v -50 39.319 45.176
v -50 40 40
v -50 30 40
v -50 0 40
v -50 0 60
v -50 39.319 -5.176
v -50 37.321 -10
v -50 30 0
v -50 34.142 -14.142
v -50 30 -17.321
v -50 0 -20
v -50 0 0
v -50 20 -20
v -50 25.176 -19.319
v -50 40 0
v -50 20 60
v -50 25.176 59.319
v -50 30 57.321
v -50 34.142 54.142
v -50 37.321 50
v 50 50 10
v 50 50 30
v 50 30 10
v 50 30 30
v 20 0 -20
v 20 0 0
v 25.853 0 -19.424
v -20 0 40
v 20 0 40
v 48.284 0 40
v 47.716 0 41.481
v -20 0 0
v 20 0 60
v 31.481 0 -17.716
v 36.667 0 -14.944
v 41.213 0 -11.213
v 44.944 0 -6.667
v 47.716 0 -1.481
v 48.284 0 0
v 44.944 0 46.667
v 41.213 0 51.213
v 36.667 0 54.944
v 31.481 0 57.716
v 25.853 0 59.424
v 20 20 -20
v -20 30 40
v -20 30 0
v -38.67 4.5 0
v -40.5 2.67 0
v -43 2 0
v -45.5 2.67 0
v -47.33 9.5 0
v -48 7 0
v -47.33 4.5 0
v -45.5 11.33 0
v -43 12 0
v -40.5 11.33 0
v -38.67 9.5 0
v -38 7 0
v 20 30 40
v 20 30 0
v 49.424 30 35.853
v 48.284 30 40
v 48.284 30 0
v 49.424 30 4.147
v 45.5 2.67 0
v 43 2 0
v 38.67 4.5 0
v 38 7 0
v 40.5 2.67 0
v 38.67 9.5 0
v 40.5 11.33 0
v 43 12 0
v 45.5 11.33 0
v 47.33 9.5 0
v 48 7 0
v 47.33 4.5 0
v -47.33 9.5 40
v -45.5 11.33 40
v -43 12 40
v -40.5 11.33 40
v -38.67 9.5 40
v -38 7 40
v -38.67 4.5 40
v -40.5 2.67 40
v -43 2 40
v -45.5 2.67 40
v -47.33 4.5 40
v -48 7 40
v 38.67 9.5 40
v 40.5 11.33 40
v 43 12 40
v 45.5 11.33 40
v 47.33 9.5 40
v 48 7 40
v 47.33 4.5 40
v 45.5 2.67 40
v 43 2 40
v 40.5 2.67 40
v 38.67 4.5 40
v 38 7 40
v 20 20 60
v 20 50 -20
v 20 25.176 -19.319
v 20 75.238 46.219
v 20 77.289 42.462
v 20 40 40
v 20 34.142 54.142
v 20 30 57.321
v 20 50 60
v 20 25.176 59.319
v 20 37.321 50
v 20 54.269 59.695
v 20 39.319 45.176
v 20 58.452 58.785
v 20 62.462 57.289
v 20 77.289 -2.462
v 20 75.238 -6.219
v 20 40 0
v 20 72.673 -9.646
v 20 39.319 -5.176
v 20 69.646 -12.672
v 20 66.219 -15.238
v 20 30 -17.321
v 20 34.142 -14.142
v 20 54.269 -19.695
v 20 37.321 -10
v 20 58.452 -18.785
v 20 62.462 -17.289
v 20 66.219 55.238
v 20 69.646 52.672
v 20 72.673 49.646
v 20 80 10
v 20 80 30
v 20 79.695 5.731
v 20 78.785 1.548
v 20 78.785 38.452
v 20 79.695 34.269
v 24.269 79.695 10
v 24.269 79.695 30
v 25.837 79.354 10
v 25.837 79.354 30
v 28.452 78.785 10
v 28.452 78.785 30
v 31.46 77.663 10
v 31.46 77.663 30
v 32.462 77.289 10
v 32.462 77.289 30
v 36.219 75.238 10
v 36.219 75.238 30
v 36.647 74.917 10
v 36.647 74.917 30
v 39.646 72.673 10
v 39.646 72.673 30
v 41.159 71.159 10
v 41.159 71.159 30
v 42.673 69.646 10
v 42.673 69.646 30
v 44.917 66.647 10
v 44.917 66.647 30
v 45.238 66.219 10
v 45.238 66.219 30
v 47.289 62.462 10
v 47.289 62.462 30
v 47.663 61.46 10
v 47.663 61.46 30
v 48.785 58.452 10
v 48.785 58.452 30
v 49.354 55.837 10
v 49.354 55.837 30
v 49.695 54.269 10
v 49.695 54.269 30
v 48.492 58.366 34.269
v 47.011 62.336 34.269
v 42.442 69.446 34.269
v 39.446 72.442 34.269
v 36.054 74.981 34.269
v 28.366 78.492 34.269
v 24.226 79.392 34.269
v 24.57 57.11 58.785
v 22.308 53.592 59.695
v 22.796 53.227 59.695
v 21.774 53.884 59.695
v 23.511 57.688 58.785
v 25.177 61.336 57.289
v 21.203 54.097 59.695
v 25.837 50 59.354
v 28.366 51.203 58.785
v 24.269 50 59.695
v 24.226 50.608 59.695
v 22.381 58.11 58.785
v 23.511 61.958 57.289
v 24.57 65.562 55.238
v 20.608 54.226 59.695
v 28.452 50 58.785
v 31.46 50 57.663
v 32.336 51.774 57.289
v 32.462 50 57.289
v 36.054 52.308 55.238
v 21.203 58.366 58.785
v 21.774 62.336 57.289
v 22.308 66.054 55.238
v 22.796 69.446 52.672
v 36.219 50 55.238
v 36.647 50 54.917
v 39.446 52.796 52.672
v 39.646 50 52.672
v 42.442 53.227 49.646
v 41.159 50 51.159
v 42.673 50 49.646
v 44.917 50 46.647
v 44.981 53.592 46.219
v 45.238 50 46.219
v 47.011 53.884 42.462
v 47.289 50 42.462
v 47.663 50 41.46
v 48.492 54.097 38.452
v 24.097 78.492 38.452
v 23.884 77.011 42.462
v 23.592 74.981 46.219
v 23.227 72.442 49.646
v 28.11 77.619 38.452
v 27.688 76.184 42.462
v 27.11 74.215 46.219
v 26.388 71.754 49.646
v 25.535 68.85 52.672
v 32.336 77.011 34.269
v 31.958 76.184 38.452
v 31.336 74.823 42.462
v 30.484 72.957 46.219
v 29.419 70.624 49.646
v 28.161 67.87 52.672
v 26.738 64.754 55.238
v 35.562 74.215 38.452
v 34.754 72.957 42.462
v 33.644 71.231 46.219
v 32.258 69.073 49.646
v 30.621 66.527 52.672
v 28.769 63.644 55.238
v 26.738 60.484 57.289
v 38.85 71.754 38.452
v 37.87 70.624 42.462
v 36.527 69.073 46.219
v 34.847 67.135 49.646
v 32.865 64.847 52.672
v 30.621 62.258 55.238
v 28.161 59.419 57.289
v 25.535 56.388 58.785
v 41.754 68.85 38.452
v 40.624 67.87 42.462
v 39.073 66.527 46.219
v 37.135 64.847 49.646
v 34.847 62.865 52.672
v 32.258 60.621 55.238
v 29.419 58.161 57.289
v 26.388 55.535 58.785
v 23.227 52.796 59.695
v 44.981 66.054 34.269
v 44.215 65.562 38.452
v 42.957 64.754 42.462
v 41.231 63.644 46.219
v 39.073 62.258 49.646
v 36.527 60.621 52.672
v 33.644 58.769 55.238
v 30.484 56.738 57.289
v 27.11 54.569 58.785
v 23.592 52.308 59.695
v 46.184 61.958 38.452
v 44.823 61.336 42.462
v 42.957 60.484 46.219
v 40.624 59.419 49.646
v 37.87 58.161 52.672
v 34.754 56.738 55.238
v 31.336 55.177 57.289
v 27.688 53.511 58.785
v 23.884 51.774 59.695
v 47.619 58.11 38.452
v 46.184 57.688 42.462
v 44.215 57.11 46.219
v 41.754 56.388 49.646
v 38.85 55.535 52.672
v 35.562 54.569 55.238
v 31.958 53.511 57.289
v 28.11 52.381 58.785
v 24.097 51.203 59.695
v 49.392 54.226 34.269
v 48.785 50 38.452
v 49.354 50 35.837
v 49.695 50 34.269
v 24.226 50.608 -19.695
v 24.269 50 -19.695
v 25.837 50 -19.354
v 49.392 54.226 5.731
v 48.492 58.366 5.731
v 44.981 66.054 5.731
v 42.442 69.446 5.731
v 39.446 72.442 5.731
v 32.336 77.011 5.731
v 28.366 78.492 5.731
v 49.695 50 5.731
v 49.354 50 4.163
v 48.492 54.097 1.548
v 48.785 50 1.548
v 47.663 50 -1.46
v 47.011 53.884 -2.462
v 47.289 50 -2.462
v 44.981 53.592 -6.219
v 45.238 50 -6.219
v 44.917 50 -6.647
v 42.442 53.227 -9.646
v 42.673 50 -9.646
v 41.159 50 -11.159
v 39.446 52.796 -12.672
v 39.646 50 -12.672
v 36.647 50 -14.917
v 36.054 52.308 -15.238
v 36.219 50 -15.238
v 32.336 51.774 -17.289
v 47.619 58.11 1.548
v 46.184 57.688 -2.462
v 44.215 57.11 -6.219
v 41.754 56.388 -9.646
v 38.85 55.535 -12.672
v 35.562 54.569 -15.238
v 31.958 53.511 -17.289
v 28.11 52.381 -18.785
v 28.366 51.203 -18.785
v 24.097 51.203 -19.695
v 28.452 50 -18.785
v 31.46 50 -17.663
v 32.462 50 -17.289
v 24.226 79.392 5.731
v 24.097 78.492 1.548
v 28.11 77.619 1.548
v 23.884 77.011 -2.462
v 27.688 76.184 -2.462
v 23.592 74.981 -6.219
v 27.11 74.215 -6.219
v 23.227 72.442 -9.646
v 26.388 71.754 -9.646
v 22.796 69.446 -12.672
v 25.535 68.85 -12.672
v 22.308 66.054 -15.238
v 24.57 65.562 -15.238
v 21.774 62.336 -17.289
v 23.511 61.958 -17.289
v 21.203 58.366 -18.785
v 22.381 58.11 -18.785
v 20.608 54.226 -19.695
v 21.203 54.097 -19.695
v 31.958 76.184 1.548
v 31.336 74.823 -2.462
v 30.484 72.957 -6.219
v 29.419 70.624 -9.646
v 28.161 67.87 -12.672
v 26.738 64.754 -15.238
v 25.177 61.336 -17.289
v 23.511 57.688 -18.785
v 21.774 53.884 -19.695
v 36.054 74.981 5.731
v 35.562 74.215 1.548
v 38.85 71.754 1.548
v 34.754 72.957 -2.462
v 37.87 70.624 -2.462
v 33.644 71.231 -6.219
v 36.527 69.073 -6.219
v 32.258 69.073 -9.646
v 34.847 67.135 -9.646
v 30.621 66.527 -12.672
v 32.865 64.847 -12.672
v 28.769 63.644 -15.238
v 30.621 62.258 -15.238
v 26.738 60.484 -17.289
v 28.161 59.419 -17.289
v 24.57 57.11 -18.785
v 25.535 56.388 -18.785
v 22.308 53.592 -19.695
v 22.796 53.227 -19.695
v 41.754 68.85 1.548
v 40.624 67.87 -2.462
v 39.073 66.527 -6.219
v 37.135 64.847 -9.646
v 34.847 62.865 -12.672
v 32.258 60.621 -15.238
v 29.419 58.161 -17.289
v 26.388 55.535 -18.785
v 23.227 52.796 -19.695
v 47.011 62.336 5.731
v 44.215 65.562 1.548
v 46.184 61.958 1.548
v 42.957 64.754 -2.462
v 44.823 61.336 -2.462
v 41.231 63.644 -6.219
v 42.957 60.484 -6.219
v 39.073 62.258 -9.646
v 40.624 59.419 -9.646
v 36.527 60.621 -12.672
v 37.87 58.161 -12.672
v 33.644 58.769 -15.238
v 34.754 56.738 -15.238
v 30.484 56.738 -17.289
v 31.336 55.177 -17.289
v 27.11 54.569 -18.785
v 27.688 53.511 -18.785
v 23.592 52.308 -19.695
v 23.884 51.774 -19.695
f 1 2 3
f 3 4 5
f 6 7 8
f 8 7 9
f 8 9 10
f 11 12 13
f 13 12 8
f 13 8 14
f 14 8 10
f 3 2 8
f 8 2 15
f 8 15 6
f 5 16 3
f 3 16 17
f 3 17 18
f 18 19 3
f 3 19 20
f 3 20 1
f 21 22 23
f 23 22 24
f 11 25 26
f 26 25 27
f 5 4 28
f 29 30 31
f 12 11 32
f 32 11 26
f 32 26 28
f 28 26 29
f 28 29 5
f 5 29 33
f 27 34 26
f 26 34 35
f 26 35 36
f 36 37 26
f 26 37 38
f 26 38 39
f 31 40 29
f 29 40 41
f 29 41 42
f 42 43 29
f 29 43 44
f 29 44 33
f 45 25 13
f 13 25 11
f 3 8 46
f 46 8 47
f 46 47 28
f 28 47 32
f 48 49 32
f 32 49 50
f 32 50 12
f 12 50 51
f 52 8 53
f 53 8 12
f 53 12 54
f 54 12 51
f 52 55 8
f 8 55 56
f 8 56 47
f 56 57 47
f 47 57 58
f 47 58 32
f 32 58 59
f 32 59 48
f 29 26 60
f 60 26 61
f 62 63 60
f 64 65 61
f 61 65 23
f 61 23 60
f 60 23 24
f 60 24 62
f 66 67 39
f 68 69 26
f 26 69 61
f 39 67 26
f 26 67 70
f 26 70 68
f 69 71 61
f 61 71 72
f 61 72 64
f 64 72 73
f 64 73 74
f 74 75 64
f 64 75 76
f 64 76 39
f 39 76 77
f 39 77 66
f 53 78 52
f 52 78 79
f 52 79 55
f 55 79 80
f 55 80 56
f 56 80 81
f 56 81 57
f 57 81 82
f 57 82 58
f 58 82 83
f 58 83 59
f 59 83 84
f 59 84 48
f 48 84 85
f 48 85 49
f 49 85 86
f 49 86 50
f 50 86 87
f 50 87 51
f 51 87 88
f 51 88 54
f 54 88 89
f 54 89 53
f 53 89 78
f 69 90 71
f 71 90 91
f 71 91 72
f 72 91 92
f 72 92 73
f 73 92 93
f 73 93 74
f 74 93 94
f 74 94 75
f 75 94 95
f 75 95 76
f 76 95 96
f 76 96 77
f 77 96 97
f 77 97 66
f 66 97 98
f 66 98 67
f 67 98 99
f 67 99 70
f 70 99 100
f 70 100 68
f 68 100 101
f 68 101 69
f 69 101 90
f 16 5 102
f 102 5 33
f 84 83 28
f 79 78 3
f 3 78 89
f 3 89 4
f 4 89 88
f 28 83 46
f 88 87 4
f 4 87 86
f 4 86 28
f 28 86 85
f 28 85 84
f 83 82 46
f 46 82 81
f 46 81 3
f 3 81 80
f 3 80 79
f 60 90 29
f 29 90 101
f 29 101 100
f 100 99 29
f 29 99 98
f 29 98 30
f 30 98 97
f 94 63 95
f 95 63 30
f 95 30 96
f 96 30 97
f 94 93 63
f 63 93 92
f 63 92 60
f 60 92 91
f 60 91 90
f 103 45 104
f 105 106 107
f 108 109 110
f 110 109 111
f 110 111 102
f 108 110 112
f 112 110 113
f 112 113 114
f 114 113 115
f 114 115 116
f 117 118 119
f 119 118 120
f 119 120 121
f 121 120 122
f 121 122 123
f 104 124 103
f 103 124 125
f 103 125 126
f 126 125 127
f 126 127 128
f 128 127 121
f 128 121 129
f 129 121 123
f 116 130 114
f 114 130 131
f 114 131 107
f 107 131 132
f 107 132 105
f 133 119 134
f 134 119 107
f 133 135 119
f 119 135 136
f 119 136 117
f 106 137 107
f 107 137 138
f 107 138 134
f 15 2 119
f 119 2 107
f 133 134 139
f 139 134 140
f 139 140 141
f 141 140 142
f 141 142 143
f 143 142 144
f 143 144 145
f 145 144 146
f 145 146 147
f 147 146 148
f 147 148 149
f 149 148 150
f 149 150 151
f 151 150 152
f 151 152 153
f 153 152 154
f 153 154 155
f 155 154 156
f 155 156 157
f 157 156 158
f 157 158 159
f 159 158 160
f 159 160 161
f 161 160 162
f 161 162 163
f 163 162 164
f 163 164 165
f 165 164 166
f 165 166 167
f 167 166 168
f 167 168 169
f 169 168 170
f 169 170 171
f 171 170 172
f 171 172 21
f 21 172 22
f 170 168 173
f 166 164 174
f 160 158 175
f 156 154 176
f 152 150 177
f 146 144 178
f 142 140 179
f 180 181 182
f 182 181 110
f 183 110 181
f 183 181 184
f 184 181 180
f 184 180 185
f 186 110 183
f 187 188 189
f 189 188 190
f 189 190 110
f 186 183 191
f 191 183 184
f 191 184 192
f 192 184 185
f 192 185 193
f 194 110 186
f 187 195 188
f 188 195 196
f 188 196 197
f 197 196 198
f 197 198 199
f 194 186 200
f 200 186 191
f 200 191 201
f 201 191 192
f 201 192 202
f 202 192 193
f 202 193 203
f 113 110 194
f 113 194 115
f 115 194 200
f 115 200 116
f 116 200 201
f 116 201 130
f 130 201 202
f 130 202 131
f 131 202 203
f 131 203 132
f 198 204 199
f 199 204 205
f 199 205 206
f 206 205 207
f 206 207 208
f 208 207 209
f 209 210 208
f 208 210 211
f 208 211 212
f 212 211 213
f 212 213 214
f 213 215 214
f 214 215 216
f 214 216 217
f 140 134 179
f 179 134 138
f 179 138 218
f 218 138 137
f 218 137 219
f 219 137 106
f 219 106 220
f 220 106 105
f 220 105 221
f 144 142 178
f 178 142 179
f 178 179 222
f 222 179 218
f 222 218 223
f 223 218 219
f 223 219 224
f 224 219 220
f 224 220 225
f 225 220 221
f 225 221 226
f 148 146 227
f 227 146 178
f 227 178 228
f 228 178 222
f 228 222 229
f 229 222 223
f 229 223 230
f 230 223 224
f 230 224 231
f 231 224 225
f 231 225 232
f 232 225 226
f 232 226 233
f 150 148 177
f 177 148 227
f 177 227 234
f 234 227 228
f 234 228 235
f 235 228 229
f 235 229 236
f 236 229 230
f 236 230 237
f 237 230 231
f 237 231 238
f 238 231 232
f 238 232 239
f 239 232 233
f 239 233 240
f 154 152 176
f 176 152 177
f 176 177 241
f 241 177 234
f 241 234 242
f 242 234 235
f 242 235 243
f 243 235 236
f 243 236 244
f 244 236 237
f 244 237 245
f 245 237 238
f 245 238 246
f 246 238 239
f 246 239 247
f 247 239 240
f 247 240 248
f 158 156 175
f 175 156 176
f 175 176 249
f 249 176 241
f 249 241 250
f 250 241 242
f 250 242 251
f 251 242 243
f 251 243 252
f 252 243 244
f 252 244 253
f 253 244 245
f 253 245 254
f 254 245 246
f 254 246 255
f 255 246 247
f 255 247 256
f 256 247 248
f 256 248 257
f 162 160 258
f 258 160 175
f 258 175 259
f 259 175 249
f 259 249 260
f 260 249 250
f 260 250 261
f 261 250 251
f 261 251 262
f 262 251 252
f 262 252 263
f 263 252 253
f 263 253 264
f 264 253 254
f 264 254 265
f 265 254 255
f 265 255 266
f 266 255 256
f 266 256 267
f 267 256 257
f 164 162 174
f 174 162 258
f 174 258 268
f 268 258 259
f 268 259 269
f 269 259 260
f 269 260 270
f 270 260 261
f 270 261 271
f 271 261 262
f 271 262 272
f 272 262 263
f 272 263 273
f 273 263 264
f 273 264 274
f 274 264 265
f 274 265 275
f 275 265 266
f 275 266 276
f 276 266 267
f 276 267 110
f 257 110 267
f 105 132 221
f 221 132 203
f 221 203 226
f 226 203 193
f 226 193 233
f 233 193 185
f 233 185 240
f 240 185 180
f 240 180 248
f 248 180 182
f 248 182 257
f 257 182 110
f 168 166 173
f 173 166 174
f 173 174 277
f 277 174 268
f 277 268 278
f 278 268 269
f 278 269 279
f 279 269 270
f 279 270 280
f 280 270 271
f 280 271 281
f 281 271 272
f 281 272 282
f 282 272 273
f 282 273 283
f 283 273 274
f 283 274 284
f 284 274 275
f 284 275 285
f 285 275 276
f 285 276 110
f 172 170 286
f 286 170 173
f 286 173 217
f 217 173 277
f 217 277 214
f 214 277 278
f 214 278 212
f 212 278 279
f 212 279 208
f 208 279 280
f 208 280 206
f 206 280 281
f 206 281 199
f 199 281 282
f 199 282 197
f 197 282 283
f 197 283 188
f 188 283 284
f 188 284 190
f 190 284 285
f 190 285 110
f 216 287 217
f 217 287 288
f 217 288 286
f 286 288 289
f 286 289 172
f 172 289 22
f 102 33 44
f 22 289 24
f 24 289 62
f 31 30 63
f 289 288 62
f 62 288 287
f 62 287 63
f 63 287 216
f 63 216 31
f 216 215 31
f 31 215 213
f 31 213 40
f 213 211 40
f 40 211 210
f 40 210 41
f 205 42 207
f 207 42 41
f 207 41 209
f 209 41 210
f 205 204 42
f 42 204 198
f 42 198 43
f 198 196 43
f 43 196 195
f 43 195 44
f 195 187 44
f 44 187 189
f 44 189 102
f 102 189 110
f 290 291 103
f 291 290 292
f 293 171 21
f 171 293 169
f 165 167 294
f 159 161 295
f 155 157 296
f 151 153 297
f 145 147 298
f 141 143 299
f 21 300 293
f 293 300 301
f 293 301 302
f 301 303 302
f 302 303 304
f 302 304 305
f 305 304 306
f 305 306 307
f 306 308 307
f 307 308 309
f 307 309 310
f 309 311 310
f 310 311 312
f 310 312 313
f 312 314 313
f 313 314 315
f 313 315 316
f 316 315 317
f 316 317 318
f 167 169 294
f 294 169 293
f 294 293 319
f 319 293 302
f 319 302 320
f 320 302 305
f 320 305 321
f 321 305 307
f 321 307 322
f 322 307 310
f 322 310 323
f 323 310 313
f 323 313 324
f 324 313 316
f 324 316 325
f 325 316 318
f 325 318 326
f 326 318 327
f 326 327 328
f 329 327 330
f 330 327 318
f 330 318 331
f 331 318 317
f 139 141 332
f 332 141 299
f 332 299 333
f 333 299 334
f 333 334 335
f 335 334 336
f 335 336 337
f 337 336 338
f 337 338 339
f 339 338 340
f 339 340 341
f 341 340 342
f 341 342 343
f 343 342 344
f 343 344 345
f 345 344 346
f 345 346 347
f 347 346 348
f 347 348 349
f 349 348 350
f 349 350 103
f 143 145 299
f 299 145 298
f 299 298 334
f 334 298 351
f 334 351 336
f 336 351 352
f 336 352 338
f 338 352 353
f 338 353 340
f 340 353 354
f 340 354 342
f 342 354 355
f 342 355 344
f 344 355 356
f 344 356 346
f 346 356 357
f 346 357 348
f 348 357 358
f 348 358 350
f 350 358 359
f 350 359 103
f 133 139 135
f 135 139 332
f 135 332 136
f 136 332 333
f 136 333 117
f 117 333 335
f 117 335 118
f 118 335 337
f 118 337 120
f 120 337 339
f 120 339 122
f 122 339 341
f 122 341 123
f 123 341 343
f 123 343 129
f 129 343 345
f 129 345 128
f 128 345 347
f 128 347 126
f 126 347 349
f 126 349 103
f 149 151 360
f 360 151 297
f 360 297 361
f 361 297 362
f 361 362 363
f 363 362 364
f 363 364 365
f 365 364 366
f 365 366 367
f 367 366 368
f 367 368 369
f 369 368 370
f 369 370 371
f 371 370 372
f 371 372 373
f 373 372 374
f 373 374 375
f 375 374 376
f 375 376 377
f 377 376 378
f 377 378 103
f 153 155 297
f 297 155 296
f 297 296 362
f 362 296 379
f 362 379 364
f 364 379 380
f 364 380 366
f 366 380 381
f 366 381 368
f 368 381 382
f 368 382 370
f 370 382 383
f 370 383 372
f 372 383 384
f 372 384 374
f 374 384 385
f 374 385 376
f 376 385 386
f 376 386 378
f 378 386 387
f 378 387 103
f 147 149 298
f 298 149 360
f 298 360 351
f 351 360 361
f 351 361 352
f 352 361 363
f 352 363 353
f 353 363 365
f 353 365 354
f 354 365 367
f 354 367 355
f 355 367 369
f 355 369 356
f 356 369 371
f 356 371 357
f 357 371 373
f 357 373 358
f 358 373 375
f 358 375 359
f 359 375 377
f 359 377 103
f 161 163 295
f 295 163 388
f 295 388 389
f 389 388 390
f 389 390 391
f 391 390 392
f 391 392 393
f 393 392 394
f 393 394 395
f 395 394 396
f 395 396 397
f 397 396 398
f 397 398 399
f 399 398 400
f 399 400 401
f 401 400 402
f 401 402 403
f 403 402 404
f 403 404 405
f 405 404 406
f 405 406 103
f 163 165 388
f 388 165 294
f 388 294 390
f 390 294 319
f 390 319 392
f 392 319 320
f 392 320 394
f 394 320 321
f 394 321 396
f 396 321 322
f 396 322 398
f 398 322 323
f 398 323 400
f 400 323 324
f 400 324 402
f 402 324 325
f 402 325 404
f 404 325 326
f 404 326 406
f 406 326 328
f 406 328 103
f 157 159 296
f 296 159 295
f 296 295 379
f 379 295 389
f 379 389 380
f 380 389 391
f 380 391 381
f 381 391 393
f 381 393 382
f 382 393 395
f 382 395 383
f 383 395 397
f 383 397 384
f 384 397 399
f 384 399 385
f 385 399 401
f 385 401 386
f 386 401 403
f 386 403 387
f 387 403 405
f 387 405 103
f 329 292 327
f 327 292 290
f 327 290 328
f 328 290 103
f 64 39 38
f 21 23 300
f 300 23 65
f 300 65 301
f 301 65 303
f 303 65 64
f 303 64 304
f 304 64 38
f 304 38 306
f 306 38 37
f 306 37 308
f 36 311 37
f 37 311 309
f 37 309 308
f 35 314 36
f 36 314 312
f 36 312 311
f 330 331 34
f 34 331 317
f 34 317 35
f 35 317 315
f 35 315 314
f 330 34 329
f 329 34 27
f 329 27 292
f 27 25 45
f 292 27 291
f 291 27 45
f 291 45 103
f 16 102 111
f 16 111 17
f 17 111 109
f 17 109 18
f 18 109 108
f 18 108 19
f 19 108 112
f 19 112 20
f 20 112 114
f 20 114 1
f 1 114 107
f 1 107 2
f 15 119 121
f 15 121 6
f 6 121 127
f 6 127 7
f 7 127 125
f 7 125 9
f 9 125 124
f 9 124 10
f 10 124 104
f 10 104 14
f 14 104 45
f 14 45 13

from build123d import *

# Parameters (mm, degrees)
SKETCH_1_W          = 100
SKETCH_1_H          = 40
EXTRUDE_1_DEPTH     = 80
SKETCH_3_W          = 30
SKETCH_3_H          = 30
CUT_EXTRUDE_2_DEPTH = 20
SKETCH_6_R          = 5
EXTRUDE_2_DEPTH     = 20
SKETCH_7_W          = 70
SKETCH_7_H          = 80
CUT_EXTRUDE_3_DEPTH = 40
FILLET_1_R          = 30
FILLET_2_R          = 30
FILLET_3_R          = 30
FILLET_4_R          = 20
FILLET_5_R          = 20


with BuildPart() as part:
    # 草圖1 → 填料-伸長1 (new body)
    with BuildSketch(Plane(origin=(0, 0, 0), x_dir=(1, 0, 0), z_dir=(0, 1, 0))):
        Rectangle(SKETCH_1_W, SKETCH_1_H)
    extrude_1 = extrude(amount=EXTRUDE_1_DEPTH)

    # 草圖3 → 除料-伸長2 (cut)
    with BuildSketch(Plane.XY.offset(20)):
        with Locations((-35, 15)):
            Rectangle(SKETCH_3_W, SKETCH_3_H)
        with Locations((35, 15)):
            Rectangle(SKETCH_3_W, SKETCH_3_H)
    cut_extrude_2 = extrude(amount=-CUT_EXTRUDE_2_DEPTH, mode=Mode.SUBTRACT)

    # 草圖6 → 填料-伸長2 (add)
    with BuildSketch(Plane.XY):
        with Locations((-43, 7)):
            Circle(SKETCH_6_R)
        with Locations((43, 7)):
            Circle(SKETCH_6_R)
    extrude_2 = extrude(amount=EXTRUDE_2_DEPTH)

    # 鏡射3: 填料-伸長1, 除料-伸長2, 填料-伸長2 across plane
    add(extrude_1.mirror(Plane(origin=(-50, 80, 20), x_dir=(1, 0, 0), z_dir=(0, 0, -1))))
    add(cut_extrude_2.mirror(Plane(origin=(-50, 80, 20), x_dir=(1, 0, 0), z_dir=(0, 0, -1))), mode=Mode.SUBTRACT)
    add(extrude_2.mirror(Plane(origin=(-50, 80, 20), x_dir=(1, 0, 0), z_dir=(0, 0, -1))))

    # 草圖7 → 除料-伸長3 (cut)
    with BuildSketch(Plane(origin=(0, 80, 0), x_dir=(1, 0, 0), z_dir=(0, 1, 0))):
        with Locations((-15, -20)):
            Rectangle(SKETCH_7_W, SKETCH_7_H)
    extrude(amount=-CUT_EXTRUDE_3_DEPTH, mode=Mode.SUBTRACT)

    # 圓角1
    fillet_1_edges = [part.edges().sort_by_distance(p)[0] for p in [
        (50, 80, 20),
    ]]
    fillet(fillet_1_edges, radius=FILLET_1_R - 0.0001)  # a hair under: the kernel refuses the full size

    # 圓角2
    fillet_2_edges = [part.edges().sort_by_distance(p)[0] for p in [
        (50, 25.00005, 60),
        (41.213232725, 71.213232725, 60),
    ]]
    fillet(fillet_2_edges, radius=FILLET_2_R - 0.0001)  # a hair under: the kernel refuses the full size

    # 圓角3
    fillet_3_edges = [part.edges().sort_by_distance(p)[0] for p in [
        (50, 25.00005, -20),
        (41.213232725, 71.213232725, -20),
    ]]
    fillet(fillet_3_edges, radius=FILLET_3_R - 0.0001)  # a hair under: the kernel refuses the full size

    # 圓角4
    fillet_4_edges = [part.edges().sort_by_distance(p)[0] for p in [
        (-15, 40, 60),
    ]]
    fillet(fillet_4_edges, radius=FILLET_4_R)

    # 圓角5
    fillet_5_edges = [part.edges().sort_by_distance(p)[0] for p in [
        (-15, 40, -20),
    ]]
    fillet(fillet_5_edges, radius=FILLET_5_R)


solid = part.part
